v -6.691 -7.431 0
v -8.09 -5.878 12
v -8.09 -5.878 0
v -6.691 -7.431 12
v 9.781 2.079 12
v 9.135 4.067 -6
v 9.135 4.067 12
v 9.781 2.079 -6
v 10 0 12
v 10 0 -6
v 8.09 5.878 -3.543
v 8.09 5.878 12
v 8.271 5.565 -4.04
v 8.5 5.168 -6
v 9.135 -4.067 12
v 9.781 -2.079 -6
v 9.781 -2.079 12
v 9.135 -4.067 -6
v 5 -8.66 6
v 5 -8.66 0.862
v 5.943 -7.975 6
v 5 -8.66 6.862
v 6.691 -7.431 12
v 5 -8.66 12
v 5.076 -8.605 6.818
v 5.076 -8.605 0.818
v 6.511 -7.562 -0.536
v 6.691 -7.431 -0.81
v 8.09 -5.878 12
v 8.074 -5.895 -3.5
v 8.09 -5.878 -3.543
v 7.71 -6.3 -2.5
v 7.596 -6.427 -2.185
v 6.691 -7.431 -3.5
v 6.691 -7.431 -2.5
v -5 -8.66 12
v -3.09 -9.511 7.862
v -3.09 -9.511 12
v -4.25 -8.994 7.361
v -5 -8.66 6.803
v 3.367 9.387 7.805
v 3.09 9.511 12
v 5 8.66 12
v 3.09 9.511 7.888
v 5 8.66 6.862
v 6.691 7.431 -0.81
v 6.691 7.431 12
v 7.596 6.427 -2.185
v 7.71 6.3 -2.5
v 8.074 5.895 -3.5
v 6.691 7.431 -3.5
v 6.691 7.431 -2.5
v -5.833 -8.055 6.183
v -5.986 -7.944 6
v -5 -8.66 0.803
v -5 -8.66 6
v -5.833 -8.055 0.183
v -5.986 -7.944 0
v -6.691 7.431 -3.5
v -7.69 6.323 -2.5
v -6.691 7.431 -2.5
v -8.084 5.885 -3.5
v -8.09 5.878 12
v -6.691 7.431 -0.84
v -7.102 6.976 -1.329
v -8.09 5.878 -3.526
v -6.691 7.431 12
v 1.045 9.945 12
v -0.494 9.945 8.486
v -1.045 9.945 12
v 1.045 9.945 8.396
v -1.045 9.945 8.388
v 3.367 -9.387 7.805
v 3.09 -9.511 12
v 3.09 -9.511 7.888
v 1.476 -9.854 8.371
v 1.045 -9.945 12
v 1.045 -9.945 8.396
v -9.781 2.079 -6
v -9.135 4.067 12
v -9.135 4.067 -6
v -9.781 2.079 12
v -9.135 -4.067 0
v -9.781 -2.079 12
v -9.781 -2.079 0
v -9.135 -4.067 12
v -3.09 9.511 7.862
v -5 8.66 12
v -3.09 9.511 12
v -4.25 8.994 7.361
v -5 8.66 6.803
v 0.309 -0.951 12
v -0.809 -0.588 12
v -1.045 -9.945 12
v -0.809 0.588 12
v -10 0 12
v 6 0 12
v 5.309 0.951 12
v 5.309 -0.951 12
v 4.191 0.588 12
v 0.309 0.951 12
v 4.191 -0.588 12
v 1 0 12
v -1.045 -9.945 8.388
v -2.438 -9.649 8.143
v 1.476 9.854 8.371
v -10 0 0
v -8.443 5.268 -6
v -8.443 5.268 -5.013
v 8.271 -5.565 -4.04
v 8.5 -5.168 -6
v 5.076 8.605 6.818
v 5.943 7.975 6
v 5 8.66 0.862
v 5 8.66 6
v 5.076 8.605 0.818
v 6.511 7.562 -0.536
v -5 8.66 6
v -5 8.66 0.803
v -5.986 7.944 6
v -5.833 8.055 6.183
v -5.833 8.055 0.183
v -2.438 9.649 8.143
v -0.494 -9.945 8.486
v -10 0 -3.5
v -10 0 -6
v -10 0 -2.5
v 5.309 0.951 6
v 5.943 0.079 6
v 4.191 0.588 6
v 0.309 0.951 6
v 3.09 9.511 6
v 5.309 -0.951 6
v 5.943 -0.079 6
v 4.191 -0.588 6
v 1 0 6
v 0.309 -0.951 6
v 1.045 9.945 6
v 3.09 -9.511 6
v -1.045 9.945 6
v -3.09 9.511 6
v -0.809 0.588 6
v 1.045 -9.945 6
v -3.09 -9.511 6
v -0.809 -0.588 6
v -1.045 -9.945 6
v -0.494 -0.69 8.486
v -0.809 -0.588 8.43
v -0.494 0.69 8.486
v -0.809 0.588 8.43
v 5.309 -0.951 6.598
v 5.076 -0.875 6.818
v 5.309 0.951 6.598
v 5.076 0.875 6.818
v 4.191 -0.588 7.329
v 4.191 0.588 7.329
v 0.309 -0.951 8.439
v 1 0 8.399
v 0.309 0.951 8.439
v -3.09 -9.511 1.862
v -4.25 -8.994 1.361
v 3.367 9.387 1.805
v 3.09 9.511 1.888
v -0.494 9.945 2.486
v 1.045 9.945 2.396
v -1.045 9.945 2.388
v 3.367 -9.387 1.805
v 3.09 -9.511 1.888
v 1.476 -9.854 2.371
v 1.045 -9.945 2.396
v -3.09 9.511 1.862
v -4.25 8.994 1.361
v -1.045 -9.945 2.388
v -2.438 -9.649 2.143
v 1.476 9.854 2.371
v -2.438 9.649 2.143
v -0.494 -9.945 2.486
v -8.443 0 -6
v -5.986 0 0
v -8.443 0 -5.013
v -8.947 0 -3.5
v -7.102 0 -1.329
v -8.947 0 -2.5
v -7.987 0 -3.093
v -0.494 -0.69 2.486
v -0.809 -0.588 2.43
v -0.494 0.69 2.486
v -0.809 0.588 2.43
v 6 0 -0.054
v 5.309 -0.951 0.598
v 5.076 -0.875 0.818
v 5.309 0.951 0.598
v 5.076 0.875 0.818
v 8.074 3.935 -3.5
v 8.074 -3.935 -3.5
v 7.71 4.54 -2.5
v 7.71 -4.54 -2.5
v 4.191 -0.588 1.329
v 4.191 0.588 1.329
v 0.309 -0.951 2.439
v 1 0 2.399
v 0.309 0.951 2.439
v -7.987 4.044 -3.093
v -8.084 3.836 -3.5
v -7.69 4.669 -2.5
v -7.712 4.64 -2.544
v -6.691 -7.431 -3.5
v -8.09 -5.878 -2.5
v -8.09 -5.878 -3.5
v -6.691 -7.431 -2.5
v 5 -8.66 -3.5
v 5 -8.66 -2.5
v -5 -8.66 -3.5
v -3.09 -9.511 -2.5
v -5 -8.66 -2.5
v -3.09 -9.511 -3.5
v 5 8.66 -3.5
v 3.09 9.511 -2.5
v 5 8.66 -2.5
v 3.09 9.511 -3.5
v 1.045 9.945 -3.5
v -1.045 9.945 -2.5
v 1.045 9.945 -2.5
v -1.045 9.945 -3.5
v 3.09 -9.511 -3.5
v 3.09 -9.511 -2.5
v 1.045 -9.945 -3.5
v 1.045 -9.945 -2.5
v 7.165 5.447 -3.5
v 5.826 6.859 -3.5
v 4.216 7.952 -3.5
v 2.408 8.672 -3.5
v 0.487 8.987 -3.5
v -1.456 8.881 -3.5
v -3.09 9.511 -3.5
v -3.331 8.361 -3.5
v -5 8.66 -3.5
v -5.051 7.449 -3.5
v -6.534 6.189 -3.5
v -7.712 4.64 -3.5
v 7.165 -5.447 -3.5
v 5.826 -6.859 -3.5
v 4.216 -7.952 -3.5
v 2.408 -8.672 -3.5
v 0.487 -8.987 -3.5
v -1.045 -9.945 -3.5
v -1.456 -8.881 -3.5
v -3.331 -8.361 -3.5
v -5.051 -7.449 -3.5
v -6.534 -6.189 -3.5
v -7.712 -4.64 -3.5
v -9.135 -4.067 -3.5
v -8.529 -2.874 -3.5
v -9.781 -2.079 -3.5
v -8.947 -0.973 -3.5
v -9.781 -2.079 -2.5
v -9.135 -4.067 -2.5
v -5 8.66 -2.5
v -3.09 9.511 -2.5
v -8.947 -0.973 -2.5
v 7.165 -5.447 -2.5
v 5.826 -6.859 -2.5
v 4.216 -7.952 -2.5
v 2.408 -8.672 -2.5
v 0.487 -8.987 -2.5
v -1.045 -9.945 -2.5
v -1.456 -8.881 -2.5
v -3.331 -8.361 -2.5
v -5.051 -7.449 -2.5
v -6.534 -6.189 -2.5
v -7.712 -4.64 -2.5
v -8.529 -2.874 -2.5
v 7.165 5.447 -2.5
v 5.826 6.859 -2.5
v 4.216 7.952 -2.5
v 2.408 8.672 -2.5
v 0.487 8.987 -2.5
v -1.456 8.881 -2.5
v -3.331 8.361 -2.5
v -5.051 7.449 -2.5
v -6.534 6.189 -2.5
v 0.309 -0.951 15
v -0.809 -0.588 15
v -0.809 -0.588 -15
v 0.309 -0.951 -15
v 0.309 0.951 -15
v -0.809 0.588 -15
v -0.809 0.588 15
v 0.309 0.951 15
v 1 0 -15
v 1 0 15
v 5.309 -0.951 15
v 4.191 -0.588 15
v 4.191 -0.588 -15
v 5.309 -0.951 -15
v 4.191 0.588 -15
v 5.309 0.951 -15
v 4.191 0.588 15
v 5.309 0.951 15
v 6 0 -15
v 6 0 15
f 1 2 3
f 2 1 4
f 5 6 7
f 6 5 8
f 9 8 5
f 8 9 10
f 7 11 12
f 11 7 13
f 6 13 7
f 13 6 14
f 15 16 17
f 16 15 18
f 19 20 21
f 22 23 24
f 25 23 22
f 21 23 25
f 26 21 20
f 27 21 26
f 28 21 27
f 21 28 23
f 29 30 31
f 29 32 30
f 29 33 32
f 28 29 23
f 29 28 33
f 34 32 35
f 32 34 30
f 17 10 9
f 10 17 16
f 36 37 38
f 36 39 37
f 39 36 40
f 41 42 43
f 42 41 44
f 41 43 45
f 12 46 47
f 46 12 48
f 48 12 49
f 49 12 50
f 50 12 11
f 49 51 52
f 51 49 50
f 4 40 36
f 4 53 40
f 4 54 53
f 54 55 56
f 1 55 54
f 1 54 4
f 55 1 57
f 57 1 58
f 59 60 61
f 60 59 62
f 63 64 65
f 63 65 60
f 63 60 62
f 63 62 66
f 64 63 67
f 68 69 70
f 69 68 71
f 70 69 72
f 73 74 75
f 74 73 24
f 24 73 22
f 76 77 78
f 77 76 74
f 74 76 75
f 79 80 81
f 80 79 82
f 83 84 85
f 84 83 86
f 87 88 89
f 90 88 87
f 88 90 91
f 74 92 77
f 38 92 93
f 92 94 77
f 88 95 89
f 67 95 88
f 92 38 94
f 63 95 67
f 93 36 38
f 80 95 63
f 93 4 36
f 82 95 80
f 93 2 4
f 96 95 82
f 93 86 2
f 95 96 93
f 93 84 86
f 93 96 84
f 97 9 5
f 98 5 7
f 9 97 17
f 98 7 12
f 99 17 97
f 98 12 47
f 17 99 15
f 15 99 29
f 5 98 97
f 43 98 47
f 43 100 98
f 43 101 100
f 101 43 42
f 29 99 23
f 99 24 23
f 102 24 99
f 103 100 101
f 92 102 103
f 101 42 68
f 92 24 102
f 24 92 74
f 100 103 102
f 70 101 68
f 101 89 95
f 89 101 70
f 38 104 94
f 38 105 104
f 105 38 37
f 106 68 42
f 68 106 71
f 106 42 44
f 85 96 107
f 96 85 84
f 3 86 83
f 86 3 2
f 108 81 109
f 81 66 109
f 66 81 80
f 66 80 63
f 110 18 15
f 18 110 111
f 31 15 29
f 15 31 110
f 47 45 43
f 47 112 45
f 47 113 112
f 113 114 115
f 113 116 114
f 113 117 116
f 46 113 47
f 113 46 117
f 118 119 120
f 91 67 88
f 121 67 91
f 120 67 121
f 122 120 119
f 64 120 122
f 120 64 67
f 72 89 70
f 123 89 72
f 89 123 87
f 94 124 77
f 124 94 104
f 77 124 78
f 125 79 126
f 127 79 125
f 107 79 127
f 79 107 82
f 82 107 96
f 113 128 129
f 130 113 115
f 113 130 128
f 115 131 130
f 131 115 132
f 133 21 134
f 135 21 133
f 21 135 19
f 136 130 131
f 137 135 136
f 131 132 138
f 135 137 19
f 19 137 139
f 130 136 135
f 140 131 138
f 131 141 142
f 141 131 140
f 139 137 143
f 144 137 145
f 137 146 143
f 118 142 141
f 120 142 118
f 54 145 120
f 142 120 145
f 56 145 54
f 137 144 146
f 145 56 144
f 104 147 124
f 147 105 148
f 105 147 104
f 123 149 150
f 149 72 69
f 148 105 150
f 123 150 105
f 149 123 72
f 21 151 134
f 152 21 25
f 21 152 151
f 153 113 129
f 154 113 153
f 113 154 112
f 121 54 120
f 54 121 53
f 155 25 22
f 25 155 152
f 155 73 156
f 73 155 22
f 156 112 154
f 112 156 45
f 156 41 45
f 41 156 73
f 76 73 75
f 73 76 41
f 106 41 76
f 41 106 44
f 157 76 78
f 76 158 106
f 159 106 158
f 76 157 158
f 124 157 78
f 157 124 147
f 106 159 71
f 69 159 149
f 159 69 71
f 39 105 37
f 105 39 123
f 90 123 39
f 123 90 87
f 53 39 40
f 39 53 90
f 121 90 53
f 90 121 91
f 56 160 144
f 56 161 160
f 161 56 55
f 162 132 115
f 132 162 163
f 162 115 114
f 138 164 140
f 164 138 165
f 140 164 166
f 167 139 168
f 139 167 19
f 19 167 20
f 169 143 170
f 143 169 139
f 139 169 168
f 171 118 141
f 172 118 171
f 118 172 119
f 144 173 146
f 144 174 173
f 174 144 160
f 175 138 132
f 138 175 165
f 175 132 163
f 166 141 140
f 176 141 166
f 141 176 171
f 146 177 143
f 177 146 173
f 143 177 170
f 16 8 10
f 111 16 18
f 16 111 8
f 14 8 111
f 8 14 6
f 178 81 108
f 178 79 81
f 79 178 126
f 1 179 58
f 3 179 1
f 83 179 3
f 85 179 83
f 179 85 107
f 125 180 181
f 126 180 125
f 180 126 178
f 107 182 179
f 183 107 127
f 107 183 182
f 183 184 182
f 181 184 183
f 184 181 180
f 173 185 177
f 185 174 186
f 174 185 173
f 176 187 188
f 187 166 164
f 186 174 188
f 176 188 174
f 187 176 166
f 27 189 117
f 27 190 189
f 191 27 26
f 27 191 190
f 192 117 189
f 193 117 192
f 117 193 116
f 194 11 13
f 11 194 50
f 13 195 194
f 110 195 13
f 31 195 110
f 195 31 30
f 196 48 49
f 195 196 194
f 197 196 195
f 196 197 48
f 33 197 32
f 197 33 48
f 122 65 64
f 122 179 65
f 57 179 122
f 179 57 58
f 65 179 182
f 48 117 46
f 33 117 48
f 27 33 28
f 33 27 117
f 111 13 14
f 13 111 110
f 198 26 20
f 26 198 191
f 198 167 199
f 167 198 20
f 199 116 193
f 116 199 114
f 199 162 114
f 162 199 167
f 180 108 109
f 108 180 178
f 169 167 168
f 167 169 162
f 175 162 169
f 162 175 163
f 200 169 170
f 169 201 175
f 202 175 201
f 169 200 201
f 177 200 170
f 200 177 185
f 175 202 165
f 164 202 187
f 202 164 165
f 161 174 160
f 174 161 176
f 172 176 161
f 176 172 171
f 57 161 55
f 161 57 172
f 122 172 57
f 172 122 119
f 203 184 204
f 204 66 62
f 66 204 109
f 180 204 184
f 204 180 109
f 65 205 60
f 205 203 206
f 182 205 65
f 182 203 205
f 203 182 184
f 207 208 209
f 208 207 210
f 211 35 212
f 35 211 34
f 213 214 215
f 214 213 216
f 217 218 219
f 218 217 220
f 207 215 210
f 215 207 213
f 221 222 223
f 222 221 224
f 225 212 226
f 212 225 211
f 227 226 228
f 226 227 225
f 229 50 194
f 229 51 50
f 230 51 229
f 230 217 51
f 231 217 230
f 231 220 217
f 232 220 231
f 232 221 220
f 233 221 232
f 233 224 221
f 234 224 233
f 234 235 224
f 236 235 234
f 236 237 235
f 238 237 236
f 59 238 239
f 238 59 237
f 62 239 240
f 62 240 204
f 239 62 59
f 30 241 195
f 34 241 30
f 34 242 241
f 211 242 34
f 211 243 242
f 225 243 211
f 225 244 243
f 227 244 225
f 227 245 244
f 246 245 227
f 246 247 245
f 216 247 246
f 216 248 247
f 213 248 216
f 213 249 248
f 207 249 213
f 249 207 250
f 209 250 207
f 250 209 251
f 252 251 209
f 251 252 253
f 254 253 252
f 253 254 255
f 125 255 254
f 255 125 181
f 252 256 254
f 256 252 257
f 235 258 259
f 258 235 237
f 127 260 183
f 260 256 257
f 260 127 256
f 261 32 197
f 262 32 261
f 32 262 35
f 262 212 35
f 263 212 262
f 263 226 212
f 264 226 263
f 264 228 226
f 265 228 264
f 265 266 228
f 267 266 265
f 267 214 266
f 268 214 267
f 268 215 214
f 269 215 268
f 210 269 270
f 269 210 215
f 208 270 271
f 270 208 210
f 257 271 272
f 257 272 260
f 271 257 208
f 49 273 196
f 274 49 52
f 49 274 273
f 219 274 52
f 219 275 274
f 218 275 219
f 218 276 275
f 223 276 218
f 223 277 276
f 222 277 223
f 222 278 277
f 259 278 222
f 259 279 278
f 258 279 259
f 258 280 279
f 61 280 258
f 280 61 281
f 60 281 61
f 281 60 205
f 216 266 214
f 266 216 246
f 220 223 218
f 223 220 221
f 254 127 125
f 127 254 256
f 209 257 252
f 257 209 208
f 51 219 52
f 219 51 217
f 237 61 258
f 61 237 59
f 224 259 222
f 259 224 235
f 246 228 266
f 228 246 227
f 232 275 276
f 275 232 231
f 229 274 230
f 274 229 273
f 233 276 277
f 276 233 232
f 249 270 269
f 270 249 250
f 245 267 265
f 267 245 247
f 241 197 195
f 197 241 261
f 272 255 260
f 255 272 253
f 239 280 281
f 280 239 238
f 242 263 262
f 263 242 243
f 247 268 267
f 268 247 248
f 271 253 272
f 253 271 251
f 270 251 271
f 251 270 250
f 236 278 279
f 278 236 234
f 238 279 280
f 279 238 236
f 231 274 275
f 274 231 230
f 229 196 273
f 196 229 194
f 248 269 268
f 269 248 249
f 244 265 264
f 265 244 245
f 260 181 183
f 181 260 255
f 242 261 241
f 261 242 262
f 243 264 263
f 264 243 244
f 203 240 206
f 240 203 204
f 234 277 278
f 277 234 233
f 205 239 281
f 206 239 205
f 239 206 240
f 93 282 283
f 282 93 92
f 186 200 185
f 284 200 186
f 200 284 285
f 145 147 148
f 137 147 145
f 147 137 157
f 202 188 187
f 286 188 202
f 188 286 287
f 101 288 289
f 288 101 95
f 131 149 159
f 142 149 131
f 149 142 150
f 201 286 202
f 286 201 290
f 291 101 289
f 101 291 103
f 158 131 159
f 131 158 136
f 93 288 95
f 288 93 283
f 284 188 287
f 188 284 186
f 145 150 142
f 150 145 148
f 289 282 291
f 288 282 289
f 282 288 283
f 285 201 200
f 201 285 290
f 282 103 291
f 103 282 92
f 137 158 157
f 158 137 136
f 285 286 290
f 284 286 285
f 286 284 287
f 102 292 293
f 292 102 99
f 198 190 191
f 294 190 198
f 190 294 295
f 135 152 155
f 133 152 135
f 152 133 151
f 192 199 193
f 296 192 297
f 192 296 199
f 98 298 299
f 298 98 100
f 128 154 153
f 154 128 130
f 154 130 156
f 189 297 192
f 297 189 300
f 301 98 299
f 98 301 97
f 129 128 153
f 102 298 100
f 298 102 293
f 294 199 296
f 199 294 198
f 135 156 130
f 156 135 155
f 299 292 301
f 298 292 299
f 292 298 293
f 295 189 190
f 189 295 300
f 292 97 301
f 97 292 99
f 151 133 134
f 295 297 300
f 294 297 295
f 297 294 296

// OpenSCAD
// Parameters for the model
module input_clamping_cylinder() {
    difference() {
        // Adjusted cylindrical shape to match original proportions
        cylinder(h = 12, r = 10, center = true);
        
        // Precision-drilled holes
        translate([0, 0, -6]) rotate([90, 0, 0]) cylinder(h = 24, r = 2, center = true);
        translate([5, 0, -6]) rotate([90, 0, 0]) cylinder(h = 24, r = 2, center = true);
        
        // Narrowed and better-defined slotted openings
        translate([-10, -5, -6]) cube([20, 10, 12], center = true);
        
        // Shallower grooves for the elastic element
        translate([0, 0, -6]) rotate([90, 0, 0]) cylinder(h = 24, r = 8.5, center = true);
    }
}

module output_clamping_cylinder() {
    difference() {
        // Adjusted cylindrical shape to match original proportions
        cylinder(h = 12, r = 10, center = true);
        
        // Precision-drilled holes aligned properly
        translate([0, 0, -6]) rotate([90, 0, 0]) cylinder(h = 24, r = 2, center = true);
        translate([5, 0, -6]) rotate([90, 0, 0]) cylinder(h = 24, r = 2, center = true);
        
        // Narrowed and better-defined slotted openings
        translate([-10, -5, -6]) cube([20, 10, 12], center = true);
        
        // Shallower grooves for the elastic element
        translate([0, 0, -6]) rotate([90, 0, 0]) cylinder(h = 24, r = 8.5, center = true);
    }
}

module elastic_spacer_ring() {
    difference() {
        // Thinner and more uniform ring
        cylinder(h = 1, r = 10, center = true);
        cylinder(h = 1, r = 9, center = true);
    }
}

module bolt() {
    // Shortened and more slender bolt
    cylinder(h = 30, r = 1, center = true);
}

module threaded_nut() {
    difference() {
        // Slimmed down nut with sharper hexagonal edges
        cylinder(h = 2, r = 2.5, center = true);
        cylinder(h = 2, r = 1.2, center = true);
        rotate([0, 0, 0]) translate([-2.5, -2.5, -1]) cube([5, 5, 2], center = true);
    }
}

// Assembly
module flexible_coupling() {
    // Layer 1: Input clamping cylinder
    translate([0, 0, 6]) input_clamping_cylinder();
    
    // Layer 2: First elastic spacer ring
    translate([0, 0, 3]) elastic_spacer_ring();
    
    // Layer 3: Output clamping cylinder
    translate([0, 0, 0]) output_clamping_cylinder();
    
    // Layer 4: Second elastic spacer ring
    translate([0, 0, -3]) elastic_spacer_ring();
    
    // Layer 5: Bolts and nuts
    translate([0, 0, 0]) bolt();
    translate([5, 0, 0]) bolt();
    translate([0, 0, 10]) threaded_nut();
    translate([5, 0, 10]) threaded_nut();
}

// Render the model
flexible_coupling();
